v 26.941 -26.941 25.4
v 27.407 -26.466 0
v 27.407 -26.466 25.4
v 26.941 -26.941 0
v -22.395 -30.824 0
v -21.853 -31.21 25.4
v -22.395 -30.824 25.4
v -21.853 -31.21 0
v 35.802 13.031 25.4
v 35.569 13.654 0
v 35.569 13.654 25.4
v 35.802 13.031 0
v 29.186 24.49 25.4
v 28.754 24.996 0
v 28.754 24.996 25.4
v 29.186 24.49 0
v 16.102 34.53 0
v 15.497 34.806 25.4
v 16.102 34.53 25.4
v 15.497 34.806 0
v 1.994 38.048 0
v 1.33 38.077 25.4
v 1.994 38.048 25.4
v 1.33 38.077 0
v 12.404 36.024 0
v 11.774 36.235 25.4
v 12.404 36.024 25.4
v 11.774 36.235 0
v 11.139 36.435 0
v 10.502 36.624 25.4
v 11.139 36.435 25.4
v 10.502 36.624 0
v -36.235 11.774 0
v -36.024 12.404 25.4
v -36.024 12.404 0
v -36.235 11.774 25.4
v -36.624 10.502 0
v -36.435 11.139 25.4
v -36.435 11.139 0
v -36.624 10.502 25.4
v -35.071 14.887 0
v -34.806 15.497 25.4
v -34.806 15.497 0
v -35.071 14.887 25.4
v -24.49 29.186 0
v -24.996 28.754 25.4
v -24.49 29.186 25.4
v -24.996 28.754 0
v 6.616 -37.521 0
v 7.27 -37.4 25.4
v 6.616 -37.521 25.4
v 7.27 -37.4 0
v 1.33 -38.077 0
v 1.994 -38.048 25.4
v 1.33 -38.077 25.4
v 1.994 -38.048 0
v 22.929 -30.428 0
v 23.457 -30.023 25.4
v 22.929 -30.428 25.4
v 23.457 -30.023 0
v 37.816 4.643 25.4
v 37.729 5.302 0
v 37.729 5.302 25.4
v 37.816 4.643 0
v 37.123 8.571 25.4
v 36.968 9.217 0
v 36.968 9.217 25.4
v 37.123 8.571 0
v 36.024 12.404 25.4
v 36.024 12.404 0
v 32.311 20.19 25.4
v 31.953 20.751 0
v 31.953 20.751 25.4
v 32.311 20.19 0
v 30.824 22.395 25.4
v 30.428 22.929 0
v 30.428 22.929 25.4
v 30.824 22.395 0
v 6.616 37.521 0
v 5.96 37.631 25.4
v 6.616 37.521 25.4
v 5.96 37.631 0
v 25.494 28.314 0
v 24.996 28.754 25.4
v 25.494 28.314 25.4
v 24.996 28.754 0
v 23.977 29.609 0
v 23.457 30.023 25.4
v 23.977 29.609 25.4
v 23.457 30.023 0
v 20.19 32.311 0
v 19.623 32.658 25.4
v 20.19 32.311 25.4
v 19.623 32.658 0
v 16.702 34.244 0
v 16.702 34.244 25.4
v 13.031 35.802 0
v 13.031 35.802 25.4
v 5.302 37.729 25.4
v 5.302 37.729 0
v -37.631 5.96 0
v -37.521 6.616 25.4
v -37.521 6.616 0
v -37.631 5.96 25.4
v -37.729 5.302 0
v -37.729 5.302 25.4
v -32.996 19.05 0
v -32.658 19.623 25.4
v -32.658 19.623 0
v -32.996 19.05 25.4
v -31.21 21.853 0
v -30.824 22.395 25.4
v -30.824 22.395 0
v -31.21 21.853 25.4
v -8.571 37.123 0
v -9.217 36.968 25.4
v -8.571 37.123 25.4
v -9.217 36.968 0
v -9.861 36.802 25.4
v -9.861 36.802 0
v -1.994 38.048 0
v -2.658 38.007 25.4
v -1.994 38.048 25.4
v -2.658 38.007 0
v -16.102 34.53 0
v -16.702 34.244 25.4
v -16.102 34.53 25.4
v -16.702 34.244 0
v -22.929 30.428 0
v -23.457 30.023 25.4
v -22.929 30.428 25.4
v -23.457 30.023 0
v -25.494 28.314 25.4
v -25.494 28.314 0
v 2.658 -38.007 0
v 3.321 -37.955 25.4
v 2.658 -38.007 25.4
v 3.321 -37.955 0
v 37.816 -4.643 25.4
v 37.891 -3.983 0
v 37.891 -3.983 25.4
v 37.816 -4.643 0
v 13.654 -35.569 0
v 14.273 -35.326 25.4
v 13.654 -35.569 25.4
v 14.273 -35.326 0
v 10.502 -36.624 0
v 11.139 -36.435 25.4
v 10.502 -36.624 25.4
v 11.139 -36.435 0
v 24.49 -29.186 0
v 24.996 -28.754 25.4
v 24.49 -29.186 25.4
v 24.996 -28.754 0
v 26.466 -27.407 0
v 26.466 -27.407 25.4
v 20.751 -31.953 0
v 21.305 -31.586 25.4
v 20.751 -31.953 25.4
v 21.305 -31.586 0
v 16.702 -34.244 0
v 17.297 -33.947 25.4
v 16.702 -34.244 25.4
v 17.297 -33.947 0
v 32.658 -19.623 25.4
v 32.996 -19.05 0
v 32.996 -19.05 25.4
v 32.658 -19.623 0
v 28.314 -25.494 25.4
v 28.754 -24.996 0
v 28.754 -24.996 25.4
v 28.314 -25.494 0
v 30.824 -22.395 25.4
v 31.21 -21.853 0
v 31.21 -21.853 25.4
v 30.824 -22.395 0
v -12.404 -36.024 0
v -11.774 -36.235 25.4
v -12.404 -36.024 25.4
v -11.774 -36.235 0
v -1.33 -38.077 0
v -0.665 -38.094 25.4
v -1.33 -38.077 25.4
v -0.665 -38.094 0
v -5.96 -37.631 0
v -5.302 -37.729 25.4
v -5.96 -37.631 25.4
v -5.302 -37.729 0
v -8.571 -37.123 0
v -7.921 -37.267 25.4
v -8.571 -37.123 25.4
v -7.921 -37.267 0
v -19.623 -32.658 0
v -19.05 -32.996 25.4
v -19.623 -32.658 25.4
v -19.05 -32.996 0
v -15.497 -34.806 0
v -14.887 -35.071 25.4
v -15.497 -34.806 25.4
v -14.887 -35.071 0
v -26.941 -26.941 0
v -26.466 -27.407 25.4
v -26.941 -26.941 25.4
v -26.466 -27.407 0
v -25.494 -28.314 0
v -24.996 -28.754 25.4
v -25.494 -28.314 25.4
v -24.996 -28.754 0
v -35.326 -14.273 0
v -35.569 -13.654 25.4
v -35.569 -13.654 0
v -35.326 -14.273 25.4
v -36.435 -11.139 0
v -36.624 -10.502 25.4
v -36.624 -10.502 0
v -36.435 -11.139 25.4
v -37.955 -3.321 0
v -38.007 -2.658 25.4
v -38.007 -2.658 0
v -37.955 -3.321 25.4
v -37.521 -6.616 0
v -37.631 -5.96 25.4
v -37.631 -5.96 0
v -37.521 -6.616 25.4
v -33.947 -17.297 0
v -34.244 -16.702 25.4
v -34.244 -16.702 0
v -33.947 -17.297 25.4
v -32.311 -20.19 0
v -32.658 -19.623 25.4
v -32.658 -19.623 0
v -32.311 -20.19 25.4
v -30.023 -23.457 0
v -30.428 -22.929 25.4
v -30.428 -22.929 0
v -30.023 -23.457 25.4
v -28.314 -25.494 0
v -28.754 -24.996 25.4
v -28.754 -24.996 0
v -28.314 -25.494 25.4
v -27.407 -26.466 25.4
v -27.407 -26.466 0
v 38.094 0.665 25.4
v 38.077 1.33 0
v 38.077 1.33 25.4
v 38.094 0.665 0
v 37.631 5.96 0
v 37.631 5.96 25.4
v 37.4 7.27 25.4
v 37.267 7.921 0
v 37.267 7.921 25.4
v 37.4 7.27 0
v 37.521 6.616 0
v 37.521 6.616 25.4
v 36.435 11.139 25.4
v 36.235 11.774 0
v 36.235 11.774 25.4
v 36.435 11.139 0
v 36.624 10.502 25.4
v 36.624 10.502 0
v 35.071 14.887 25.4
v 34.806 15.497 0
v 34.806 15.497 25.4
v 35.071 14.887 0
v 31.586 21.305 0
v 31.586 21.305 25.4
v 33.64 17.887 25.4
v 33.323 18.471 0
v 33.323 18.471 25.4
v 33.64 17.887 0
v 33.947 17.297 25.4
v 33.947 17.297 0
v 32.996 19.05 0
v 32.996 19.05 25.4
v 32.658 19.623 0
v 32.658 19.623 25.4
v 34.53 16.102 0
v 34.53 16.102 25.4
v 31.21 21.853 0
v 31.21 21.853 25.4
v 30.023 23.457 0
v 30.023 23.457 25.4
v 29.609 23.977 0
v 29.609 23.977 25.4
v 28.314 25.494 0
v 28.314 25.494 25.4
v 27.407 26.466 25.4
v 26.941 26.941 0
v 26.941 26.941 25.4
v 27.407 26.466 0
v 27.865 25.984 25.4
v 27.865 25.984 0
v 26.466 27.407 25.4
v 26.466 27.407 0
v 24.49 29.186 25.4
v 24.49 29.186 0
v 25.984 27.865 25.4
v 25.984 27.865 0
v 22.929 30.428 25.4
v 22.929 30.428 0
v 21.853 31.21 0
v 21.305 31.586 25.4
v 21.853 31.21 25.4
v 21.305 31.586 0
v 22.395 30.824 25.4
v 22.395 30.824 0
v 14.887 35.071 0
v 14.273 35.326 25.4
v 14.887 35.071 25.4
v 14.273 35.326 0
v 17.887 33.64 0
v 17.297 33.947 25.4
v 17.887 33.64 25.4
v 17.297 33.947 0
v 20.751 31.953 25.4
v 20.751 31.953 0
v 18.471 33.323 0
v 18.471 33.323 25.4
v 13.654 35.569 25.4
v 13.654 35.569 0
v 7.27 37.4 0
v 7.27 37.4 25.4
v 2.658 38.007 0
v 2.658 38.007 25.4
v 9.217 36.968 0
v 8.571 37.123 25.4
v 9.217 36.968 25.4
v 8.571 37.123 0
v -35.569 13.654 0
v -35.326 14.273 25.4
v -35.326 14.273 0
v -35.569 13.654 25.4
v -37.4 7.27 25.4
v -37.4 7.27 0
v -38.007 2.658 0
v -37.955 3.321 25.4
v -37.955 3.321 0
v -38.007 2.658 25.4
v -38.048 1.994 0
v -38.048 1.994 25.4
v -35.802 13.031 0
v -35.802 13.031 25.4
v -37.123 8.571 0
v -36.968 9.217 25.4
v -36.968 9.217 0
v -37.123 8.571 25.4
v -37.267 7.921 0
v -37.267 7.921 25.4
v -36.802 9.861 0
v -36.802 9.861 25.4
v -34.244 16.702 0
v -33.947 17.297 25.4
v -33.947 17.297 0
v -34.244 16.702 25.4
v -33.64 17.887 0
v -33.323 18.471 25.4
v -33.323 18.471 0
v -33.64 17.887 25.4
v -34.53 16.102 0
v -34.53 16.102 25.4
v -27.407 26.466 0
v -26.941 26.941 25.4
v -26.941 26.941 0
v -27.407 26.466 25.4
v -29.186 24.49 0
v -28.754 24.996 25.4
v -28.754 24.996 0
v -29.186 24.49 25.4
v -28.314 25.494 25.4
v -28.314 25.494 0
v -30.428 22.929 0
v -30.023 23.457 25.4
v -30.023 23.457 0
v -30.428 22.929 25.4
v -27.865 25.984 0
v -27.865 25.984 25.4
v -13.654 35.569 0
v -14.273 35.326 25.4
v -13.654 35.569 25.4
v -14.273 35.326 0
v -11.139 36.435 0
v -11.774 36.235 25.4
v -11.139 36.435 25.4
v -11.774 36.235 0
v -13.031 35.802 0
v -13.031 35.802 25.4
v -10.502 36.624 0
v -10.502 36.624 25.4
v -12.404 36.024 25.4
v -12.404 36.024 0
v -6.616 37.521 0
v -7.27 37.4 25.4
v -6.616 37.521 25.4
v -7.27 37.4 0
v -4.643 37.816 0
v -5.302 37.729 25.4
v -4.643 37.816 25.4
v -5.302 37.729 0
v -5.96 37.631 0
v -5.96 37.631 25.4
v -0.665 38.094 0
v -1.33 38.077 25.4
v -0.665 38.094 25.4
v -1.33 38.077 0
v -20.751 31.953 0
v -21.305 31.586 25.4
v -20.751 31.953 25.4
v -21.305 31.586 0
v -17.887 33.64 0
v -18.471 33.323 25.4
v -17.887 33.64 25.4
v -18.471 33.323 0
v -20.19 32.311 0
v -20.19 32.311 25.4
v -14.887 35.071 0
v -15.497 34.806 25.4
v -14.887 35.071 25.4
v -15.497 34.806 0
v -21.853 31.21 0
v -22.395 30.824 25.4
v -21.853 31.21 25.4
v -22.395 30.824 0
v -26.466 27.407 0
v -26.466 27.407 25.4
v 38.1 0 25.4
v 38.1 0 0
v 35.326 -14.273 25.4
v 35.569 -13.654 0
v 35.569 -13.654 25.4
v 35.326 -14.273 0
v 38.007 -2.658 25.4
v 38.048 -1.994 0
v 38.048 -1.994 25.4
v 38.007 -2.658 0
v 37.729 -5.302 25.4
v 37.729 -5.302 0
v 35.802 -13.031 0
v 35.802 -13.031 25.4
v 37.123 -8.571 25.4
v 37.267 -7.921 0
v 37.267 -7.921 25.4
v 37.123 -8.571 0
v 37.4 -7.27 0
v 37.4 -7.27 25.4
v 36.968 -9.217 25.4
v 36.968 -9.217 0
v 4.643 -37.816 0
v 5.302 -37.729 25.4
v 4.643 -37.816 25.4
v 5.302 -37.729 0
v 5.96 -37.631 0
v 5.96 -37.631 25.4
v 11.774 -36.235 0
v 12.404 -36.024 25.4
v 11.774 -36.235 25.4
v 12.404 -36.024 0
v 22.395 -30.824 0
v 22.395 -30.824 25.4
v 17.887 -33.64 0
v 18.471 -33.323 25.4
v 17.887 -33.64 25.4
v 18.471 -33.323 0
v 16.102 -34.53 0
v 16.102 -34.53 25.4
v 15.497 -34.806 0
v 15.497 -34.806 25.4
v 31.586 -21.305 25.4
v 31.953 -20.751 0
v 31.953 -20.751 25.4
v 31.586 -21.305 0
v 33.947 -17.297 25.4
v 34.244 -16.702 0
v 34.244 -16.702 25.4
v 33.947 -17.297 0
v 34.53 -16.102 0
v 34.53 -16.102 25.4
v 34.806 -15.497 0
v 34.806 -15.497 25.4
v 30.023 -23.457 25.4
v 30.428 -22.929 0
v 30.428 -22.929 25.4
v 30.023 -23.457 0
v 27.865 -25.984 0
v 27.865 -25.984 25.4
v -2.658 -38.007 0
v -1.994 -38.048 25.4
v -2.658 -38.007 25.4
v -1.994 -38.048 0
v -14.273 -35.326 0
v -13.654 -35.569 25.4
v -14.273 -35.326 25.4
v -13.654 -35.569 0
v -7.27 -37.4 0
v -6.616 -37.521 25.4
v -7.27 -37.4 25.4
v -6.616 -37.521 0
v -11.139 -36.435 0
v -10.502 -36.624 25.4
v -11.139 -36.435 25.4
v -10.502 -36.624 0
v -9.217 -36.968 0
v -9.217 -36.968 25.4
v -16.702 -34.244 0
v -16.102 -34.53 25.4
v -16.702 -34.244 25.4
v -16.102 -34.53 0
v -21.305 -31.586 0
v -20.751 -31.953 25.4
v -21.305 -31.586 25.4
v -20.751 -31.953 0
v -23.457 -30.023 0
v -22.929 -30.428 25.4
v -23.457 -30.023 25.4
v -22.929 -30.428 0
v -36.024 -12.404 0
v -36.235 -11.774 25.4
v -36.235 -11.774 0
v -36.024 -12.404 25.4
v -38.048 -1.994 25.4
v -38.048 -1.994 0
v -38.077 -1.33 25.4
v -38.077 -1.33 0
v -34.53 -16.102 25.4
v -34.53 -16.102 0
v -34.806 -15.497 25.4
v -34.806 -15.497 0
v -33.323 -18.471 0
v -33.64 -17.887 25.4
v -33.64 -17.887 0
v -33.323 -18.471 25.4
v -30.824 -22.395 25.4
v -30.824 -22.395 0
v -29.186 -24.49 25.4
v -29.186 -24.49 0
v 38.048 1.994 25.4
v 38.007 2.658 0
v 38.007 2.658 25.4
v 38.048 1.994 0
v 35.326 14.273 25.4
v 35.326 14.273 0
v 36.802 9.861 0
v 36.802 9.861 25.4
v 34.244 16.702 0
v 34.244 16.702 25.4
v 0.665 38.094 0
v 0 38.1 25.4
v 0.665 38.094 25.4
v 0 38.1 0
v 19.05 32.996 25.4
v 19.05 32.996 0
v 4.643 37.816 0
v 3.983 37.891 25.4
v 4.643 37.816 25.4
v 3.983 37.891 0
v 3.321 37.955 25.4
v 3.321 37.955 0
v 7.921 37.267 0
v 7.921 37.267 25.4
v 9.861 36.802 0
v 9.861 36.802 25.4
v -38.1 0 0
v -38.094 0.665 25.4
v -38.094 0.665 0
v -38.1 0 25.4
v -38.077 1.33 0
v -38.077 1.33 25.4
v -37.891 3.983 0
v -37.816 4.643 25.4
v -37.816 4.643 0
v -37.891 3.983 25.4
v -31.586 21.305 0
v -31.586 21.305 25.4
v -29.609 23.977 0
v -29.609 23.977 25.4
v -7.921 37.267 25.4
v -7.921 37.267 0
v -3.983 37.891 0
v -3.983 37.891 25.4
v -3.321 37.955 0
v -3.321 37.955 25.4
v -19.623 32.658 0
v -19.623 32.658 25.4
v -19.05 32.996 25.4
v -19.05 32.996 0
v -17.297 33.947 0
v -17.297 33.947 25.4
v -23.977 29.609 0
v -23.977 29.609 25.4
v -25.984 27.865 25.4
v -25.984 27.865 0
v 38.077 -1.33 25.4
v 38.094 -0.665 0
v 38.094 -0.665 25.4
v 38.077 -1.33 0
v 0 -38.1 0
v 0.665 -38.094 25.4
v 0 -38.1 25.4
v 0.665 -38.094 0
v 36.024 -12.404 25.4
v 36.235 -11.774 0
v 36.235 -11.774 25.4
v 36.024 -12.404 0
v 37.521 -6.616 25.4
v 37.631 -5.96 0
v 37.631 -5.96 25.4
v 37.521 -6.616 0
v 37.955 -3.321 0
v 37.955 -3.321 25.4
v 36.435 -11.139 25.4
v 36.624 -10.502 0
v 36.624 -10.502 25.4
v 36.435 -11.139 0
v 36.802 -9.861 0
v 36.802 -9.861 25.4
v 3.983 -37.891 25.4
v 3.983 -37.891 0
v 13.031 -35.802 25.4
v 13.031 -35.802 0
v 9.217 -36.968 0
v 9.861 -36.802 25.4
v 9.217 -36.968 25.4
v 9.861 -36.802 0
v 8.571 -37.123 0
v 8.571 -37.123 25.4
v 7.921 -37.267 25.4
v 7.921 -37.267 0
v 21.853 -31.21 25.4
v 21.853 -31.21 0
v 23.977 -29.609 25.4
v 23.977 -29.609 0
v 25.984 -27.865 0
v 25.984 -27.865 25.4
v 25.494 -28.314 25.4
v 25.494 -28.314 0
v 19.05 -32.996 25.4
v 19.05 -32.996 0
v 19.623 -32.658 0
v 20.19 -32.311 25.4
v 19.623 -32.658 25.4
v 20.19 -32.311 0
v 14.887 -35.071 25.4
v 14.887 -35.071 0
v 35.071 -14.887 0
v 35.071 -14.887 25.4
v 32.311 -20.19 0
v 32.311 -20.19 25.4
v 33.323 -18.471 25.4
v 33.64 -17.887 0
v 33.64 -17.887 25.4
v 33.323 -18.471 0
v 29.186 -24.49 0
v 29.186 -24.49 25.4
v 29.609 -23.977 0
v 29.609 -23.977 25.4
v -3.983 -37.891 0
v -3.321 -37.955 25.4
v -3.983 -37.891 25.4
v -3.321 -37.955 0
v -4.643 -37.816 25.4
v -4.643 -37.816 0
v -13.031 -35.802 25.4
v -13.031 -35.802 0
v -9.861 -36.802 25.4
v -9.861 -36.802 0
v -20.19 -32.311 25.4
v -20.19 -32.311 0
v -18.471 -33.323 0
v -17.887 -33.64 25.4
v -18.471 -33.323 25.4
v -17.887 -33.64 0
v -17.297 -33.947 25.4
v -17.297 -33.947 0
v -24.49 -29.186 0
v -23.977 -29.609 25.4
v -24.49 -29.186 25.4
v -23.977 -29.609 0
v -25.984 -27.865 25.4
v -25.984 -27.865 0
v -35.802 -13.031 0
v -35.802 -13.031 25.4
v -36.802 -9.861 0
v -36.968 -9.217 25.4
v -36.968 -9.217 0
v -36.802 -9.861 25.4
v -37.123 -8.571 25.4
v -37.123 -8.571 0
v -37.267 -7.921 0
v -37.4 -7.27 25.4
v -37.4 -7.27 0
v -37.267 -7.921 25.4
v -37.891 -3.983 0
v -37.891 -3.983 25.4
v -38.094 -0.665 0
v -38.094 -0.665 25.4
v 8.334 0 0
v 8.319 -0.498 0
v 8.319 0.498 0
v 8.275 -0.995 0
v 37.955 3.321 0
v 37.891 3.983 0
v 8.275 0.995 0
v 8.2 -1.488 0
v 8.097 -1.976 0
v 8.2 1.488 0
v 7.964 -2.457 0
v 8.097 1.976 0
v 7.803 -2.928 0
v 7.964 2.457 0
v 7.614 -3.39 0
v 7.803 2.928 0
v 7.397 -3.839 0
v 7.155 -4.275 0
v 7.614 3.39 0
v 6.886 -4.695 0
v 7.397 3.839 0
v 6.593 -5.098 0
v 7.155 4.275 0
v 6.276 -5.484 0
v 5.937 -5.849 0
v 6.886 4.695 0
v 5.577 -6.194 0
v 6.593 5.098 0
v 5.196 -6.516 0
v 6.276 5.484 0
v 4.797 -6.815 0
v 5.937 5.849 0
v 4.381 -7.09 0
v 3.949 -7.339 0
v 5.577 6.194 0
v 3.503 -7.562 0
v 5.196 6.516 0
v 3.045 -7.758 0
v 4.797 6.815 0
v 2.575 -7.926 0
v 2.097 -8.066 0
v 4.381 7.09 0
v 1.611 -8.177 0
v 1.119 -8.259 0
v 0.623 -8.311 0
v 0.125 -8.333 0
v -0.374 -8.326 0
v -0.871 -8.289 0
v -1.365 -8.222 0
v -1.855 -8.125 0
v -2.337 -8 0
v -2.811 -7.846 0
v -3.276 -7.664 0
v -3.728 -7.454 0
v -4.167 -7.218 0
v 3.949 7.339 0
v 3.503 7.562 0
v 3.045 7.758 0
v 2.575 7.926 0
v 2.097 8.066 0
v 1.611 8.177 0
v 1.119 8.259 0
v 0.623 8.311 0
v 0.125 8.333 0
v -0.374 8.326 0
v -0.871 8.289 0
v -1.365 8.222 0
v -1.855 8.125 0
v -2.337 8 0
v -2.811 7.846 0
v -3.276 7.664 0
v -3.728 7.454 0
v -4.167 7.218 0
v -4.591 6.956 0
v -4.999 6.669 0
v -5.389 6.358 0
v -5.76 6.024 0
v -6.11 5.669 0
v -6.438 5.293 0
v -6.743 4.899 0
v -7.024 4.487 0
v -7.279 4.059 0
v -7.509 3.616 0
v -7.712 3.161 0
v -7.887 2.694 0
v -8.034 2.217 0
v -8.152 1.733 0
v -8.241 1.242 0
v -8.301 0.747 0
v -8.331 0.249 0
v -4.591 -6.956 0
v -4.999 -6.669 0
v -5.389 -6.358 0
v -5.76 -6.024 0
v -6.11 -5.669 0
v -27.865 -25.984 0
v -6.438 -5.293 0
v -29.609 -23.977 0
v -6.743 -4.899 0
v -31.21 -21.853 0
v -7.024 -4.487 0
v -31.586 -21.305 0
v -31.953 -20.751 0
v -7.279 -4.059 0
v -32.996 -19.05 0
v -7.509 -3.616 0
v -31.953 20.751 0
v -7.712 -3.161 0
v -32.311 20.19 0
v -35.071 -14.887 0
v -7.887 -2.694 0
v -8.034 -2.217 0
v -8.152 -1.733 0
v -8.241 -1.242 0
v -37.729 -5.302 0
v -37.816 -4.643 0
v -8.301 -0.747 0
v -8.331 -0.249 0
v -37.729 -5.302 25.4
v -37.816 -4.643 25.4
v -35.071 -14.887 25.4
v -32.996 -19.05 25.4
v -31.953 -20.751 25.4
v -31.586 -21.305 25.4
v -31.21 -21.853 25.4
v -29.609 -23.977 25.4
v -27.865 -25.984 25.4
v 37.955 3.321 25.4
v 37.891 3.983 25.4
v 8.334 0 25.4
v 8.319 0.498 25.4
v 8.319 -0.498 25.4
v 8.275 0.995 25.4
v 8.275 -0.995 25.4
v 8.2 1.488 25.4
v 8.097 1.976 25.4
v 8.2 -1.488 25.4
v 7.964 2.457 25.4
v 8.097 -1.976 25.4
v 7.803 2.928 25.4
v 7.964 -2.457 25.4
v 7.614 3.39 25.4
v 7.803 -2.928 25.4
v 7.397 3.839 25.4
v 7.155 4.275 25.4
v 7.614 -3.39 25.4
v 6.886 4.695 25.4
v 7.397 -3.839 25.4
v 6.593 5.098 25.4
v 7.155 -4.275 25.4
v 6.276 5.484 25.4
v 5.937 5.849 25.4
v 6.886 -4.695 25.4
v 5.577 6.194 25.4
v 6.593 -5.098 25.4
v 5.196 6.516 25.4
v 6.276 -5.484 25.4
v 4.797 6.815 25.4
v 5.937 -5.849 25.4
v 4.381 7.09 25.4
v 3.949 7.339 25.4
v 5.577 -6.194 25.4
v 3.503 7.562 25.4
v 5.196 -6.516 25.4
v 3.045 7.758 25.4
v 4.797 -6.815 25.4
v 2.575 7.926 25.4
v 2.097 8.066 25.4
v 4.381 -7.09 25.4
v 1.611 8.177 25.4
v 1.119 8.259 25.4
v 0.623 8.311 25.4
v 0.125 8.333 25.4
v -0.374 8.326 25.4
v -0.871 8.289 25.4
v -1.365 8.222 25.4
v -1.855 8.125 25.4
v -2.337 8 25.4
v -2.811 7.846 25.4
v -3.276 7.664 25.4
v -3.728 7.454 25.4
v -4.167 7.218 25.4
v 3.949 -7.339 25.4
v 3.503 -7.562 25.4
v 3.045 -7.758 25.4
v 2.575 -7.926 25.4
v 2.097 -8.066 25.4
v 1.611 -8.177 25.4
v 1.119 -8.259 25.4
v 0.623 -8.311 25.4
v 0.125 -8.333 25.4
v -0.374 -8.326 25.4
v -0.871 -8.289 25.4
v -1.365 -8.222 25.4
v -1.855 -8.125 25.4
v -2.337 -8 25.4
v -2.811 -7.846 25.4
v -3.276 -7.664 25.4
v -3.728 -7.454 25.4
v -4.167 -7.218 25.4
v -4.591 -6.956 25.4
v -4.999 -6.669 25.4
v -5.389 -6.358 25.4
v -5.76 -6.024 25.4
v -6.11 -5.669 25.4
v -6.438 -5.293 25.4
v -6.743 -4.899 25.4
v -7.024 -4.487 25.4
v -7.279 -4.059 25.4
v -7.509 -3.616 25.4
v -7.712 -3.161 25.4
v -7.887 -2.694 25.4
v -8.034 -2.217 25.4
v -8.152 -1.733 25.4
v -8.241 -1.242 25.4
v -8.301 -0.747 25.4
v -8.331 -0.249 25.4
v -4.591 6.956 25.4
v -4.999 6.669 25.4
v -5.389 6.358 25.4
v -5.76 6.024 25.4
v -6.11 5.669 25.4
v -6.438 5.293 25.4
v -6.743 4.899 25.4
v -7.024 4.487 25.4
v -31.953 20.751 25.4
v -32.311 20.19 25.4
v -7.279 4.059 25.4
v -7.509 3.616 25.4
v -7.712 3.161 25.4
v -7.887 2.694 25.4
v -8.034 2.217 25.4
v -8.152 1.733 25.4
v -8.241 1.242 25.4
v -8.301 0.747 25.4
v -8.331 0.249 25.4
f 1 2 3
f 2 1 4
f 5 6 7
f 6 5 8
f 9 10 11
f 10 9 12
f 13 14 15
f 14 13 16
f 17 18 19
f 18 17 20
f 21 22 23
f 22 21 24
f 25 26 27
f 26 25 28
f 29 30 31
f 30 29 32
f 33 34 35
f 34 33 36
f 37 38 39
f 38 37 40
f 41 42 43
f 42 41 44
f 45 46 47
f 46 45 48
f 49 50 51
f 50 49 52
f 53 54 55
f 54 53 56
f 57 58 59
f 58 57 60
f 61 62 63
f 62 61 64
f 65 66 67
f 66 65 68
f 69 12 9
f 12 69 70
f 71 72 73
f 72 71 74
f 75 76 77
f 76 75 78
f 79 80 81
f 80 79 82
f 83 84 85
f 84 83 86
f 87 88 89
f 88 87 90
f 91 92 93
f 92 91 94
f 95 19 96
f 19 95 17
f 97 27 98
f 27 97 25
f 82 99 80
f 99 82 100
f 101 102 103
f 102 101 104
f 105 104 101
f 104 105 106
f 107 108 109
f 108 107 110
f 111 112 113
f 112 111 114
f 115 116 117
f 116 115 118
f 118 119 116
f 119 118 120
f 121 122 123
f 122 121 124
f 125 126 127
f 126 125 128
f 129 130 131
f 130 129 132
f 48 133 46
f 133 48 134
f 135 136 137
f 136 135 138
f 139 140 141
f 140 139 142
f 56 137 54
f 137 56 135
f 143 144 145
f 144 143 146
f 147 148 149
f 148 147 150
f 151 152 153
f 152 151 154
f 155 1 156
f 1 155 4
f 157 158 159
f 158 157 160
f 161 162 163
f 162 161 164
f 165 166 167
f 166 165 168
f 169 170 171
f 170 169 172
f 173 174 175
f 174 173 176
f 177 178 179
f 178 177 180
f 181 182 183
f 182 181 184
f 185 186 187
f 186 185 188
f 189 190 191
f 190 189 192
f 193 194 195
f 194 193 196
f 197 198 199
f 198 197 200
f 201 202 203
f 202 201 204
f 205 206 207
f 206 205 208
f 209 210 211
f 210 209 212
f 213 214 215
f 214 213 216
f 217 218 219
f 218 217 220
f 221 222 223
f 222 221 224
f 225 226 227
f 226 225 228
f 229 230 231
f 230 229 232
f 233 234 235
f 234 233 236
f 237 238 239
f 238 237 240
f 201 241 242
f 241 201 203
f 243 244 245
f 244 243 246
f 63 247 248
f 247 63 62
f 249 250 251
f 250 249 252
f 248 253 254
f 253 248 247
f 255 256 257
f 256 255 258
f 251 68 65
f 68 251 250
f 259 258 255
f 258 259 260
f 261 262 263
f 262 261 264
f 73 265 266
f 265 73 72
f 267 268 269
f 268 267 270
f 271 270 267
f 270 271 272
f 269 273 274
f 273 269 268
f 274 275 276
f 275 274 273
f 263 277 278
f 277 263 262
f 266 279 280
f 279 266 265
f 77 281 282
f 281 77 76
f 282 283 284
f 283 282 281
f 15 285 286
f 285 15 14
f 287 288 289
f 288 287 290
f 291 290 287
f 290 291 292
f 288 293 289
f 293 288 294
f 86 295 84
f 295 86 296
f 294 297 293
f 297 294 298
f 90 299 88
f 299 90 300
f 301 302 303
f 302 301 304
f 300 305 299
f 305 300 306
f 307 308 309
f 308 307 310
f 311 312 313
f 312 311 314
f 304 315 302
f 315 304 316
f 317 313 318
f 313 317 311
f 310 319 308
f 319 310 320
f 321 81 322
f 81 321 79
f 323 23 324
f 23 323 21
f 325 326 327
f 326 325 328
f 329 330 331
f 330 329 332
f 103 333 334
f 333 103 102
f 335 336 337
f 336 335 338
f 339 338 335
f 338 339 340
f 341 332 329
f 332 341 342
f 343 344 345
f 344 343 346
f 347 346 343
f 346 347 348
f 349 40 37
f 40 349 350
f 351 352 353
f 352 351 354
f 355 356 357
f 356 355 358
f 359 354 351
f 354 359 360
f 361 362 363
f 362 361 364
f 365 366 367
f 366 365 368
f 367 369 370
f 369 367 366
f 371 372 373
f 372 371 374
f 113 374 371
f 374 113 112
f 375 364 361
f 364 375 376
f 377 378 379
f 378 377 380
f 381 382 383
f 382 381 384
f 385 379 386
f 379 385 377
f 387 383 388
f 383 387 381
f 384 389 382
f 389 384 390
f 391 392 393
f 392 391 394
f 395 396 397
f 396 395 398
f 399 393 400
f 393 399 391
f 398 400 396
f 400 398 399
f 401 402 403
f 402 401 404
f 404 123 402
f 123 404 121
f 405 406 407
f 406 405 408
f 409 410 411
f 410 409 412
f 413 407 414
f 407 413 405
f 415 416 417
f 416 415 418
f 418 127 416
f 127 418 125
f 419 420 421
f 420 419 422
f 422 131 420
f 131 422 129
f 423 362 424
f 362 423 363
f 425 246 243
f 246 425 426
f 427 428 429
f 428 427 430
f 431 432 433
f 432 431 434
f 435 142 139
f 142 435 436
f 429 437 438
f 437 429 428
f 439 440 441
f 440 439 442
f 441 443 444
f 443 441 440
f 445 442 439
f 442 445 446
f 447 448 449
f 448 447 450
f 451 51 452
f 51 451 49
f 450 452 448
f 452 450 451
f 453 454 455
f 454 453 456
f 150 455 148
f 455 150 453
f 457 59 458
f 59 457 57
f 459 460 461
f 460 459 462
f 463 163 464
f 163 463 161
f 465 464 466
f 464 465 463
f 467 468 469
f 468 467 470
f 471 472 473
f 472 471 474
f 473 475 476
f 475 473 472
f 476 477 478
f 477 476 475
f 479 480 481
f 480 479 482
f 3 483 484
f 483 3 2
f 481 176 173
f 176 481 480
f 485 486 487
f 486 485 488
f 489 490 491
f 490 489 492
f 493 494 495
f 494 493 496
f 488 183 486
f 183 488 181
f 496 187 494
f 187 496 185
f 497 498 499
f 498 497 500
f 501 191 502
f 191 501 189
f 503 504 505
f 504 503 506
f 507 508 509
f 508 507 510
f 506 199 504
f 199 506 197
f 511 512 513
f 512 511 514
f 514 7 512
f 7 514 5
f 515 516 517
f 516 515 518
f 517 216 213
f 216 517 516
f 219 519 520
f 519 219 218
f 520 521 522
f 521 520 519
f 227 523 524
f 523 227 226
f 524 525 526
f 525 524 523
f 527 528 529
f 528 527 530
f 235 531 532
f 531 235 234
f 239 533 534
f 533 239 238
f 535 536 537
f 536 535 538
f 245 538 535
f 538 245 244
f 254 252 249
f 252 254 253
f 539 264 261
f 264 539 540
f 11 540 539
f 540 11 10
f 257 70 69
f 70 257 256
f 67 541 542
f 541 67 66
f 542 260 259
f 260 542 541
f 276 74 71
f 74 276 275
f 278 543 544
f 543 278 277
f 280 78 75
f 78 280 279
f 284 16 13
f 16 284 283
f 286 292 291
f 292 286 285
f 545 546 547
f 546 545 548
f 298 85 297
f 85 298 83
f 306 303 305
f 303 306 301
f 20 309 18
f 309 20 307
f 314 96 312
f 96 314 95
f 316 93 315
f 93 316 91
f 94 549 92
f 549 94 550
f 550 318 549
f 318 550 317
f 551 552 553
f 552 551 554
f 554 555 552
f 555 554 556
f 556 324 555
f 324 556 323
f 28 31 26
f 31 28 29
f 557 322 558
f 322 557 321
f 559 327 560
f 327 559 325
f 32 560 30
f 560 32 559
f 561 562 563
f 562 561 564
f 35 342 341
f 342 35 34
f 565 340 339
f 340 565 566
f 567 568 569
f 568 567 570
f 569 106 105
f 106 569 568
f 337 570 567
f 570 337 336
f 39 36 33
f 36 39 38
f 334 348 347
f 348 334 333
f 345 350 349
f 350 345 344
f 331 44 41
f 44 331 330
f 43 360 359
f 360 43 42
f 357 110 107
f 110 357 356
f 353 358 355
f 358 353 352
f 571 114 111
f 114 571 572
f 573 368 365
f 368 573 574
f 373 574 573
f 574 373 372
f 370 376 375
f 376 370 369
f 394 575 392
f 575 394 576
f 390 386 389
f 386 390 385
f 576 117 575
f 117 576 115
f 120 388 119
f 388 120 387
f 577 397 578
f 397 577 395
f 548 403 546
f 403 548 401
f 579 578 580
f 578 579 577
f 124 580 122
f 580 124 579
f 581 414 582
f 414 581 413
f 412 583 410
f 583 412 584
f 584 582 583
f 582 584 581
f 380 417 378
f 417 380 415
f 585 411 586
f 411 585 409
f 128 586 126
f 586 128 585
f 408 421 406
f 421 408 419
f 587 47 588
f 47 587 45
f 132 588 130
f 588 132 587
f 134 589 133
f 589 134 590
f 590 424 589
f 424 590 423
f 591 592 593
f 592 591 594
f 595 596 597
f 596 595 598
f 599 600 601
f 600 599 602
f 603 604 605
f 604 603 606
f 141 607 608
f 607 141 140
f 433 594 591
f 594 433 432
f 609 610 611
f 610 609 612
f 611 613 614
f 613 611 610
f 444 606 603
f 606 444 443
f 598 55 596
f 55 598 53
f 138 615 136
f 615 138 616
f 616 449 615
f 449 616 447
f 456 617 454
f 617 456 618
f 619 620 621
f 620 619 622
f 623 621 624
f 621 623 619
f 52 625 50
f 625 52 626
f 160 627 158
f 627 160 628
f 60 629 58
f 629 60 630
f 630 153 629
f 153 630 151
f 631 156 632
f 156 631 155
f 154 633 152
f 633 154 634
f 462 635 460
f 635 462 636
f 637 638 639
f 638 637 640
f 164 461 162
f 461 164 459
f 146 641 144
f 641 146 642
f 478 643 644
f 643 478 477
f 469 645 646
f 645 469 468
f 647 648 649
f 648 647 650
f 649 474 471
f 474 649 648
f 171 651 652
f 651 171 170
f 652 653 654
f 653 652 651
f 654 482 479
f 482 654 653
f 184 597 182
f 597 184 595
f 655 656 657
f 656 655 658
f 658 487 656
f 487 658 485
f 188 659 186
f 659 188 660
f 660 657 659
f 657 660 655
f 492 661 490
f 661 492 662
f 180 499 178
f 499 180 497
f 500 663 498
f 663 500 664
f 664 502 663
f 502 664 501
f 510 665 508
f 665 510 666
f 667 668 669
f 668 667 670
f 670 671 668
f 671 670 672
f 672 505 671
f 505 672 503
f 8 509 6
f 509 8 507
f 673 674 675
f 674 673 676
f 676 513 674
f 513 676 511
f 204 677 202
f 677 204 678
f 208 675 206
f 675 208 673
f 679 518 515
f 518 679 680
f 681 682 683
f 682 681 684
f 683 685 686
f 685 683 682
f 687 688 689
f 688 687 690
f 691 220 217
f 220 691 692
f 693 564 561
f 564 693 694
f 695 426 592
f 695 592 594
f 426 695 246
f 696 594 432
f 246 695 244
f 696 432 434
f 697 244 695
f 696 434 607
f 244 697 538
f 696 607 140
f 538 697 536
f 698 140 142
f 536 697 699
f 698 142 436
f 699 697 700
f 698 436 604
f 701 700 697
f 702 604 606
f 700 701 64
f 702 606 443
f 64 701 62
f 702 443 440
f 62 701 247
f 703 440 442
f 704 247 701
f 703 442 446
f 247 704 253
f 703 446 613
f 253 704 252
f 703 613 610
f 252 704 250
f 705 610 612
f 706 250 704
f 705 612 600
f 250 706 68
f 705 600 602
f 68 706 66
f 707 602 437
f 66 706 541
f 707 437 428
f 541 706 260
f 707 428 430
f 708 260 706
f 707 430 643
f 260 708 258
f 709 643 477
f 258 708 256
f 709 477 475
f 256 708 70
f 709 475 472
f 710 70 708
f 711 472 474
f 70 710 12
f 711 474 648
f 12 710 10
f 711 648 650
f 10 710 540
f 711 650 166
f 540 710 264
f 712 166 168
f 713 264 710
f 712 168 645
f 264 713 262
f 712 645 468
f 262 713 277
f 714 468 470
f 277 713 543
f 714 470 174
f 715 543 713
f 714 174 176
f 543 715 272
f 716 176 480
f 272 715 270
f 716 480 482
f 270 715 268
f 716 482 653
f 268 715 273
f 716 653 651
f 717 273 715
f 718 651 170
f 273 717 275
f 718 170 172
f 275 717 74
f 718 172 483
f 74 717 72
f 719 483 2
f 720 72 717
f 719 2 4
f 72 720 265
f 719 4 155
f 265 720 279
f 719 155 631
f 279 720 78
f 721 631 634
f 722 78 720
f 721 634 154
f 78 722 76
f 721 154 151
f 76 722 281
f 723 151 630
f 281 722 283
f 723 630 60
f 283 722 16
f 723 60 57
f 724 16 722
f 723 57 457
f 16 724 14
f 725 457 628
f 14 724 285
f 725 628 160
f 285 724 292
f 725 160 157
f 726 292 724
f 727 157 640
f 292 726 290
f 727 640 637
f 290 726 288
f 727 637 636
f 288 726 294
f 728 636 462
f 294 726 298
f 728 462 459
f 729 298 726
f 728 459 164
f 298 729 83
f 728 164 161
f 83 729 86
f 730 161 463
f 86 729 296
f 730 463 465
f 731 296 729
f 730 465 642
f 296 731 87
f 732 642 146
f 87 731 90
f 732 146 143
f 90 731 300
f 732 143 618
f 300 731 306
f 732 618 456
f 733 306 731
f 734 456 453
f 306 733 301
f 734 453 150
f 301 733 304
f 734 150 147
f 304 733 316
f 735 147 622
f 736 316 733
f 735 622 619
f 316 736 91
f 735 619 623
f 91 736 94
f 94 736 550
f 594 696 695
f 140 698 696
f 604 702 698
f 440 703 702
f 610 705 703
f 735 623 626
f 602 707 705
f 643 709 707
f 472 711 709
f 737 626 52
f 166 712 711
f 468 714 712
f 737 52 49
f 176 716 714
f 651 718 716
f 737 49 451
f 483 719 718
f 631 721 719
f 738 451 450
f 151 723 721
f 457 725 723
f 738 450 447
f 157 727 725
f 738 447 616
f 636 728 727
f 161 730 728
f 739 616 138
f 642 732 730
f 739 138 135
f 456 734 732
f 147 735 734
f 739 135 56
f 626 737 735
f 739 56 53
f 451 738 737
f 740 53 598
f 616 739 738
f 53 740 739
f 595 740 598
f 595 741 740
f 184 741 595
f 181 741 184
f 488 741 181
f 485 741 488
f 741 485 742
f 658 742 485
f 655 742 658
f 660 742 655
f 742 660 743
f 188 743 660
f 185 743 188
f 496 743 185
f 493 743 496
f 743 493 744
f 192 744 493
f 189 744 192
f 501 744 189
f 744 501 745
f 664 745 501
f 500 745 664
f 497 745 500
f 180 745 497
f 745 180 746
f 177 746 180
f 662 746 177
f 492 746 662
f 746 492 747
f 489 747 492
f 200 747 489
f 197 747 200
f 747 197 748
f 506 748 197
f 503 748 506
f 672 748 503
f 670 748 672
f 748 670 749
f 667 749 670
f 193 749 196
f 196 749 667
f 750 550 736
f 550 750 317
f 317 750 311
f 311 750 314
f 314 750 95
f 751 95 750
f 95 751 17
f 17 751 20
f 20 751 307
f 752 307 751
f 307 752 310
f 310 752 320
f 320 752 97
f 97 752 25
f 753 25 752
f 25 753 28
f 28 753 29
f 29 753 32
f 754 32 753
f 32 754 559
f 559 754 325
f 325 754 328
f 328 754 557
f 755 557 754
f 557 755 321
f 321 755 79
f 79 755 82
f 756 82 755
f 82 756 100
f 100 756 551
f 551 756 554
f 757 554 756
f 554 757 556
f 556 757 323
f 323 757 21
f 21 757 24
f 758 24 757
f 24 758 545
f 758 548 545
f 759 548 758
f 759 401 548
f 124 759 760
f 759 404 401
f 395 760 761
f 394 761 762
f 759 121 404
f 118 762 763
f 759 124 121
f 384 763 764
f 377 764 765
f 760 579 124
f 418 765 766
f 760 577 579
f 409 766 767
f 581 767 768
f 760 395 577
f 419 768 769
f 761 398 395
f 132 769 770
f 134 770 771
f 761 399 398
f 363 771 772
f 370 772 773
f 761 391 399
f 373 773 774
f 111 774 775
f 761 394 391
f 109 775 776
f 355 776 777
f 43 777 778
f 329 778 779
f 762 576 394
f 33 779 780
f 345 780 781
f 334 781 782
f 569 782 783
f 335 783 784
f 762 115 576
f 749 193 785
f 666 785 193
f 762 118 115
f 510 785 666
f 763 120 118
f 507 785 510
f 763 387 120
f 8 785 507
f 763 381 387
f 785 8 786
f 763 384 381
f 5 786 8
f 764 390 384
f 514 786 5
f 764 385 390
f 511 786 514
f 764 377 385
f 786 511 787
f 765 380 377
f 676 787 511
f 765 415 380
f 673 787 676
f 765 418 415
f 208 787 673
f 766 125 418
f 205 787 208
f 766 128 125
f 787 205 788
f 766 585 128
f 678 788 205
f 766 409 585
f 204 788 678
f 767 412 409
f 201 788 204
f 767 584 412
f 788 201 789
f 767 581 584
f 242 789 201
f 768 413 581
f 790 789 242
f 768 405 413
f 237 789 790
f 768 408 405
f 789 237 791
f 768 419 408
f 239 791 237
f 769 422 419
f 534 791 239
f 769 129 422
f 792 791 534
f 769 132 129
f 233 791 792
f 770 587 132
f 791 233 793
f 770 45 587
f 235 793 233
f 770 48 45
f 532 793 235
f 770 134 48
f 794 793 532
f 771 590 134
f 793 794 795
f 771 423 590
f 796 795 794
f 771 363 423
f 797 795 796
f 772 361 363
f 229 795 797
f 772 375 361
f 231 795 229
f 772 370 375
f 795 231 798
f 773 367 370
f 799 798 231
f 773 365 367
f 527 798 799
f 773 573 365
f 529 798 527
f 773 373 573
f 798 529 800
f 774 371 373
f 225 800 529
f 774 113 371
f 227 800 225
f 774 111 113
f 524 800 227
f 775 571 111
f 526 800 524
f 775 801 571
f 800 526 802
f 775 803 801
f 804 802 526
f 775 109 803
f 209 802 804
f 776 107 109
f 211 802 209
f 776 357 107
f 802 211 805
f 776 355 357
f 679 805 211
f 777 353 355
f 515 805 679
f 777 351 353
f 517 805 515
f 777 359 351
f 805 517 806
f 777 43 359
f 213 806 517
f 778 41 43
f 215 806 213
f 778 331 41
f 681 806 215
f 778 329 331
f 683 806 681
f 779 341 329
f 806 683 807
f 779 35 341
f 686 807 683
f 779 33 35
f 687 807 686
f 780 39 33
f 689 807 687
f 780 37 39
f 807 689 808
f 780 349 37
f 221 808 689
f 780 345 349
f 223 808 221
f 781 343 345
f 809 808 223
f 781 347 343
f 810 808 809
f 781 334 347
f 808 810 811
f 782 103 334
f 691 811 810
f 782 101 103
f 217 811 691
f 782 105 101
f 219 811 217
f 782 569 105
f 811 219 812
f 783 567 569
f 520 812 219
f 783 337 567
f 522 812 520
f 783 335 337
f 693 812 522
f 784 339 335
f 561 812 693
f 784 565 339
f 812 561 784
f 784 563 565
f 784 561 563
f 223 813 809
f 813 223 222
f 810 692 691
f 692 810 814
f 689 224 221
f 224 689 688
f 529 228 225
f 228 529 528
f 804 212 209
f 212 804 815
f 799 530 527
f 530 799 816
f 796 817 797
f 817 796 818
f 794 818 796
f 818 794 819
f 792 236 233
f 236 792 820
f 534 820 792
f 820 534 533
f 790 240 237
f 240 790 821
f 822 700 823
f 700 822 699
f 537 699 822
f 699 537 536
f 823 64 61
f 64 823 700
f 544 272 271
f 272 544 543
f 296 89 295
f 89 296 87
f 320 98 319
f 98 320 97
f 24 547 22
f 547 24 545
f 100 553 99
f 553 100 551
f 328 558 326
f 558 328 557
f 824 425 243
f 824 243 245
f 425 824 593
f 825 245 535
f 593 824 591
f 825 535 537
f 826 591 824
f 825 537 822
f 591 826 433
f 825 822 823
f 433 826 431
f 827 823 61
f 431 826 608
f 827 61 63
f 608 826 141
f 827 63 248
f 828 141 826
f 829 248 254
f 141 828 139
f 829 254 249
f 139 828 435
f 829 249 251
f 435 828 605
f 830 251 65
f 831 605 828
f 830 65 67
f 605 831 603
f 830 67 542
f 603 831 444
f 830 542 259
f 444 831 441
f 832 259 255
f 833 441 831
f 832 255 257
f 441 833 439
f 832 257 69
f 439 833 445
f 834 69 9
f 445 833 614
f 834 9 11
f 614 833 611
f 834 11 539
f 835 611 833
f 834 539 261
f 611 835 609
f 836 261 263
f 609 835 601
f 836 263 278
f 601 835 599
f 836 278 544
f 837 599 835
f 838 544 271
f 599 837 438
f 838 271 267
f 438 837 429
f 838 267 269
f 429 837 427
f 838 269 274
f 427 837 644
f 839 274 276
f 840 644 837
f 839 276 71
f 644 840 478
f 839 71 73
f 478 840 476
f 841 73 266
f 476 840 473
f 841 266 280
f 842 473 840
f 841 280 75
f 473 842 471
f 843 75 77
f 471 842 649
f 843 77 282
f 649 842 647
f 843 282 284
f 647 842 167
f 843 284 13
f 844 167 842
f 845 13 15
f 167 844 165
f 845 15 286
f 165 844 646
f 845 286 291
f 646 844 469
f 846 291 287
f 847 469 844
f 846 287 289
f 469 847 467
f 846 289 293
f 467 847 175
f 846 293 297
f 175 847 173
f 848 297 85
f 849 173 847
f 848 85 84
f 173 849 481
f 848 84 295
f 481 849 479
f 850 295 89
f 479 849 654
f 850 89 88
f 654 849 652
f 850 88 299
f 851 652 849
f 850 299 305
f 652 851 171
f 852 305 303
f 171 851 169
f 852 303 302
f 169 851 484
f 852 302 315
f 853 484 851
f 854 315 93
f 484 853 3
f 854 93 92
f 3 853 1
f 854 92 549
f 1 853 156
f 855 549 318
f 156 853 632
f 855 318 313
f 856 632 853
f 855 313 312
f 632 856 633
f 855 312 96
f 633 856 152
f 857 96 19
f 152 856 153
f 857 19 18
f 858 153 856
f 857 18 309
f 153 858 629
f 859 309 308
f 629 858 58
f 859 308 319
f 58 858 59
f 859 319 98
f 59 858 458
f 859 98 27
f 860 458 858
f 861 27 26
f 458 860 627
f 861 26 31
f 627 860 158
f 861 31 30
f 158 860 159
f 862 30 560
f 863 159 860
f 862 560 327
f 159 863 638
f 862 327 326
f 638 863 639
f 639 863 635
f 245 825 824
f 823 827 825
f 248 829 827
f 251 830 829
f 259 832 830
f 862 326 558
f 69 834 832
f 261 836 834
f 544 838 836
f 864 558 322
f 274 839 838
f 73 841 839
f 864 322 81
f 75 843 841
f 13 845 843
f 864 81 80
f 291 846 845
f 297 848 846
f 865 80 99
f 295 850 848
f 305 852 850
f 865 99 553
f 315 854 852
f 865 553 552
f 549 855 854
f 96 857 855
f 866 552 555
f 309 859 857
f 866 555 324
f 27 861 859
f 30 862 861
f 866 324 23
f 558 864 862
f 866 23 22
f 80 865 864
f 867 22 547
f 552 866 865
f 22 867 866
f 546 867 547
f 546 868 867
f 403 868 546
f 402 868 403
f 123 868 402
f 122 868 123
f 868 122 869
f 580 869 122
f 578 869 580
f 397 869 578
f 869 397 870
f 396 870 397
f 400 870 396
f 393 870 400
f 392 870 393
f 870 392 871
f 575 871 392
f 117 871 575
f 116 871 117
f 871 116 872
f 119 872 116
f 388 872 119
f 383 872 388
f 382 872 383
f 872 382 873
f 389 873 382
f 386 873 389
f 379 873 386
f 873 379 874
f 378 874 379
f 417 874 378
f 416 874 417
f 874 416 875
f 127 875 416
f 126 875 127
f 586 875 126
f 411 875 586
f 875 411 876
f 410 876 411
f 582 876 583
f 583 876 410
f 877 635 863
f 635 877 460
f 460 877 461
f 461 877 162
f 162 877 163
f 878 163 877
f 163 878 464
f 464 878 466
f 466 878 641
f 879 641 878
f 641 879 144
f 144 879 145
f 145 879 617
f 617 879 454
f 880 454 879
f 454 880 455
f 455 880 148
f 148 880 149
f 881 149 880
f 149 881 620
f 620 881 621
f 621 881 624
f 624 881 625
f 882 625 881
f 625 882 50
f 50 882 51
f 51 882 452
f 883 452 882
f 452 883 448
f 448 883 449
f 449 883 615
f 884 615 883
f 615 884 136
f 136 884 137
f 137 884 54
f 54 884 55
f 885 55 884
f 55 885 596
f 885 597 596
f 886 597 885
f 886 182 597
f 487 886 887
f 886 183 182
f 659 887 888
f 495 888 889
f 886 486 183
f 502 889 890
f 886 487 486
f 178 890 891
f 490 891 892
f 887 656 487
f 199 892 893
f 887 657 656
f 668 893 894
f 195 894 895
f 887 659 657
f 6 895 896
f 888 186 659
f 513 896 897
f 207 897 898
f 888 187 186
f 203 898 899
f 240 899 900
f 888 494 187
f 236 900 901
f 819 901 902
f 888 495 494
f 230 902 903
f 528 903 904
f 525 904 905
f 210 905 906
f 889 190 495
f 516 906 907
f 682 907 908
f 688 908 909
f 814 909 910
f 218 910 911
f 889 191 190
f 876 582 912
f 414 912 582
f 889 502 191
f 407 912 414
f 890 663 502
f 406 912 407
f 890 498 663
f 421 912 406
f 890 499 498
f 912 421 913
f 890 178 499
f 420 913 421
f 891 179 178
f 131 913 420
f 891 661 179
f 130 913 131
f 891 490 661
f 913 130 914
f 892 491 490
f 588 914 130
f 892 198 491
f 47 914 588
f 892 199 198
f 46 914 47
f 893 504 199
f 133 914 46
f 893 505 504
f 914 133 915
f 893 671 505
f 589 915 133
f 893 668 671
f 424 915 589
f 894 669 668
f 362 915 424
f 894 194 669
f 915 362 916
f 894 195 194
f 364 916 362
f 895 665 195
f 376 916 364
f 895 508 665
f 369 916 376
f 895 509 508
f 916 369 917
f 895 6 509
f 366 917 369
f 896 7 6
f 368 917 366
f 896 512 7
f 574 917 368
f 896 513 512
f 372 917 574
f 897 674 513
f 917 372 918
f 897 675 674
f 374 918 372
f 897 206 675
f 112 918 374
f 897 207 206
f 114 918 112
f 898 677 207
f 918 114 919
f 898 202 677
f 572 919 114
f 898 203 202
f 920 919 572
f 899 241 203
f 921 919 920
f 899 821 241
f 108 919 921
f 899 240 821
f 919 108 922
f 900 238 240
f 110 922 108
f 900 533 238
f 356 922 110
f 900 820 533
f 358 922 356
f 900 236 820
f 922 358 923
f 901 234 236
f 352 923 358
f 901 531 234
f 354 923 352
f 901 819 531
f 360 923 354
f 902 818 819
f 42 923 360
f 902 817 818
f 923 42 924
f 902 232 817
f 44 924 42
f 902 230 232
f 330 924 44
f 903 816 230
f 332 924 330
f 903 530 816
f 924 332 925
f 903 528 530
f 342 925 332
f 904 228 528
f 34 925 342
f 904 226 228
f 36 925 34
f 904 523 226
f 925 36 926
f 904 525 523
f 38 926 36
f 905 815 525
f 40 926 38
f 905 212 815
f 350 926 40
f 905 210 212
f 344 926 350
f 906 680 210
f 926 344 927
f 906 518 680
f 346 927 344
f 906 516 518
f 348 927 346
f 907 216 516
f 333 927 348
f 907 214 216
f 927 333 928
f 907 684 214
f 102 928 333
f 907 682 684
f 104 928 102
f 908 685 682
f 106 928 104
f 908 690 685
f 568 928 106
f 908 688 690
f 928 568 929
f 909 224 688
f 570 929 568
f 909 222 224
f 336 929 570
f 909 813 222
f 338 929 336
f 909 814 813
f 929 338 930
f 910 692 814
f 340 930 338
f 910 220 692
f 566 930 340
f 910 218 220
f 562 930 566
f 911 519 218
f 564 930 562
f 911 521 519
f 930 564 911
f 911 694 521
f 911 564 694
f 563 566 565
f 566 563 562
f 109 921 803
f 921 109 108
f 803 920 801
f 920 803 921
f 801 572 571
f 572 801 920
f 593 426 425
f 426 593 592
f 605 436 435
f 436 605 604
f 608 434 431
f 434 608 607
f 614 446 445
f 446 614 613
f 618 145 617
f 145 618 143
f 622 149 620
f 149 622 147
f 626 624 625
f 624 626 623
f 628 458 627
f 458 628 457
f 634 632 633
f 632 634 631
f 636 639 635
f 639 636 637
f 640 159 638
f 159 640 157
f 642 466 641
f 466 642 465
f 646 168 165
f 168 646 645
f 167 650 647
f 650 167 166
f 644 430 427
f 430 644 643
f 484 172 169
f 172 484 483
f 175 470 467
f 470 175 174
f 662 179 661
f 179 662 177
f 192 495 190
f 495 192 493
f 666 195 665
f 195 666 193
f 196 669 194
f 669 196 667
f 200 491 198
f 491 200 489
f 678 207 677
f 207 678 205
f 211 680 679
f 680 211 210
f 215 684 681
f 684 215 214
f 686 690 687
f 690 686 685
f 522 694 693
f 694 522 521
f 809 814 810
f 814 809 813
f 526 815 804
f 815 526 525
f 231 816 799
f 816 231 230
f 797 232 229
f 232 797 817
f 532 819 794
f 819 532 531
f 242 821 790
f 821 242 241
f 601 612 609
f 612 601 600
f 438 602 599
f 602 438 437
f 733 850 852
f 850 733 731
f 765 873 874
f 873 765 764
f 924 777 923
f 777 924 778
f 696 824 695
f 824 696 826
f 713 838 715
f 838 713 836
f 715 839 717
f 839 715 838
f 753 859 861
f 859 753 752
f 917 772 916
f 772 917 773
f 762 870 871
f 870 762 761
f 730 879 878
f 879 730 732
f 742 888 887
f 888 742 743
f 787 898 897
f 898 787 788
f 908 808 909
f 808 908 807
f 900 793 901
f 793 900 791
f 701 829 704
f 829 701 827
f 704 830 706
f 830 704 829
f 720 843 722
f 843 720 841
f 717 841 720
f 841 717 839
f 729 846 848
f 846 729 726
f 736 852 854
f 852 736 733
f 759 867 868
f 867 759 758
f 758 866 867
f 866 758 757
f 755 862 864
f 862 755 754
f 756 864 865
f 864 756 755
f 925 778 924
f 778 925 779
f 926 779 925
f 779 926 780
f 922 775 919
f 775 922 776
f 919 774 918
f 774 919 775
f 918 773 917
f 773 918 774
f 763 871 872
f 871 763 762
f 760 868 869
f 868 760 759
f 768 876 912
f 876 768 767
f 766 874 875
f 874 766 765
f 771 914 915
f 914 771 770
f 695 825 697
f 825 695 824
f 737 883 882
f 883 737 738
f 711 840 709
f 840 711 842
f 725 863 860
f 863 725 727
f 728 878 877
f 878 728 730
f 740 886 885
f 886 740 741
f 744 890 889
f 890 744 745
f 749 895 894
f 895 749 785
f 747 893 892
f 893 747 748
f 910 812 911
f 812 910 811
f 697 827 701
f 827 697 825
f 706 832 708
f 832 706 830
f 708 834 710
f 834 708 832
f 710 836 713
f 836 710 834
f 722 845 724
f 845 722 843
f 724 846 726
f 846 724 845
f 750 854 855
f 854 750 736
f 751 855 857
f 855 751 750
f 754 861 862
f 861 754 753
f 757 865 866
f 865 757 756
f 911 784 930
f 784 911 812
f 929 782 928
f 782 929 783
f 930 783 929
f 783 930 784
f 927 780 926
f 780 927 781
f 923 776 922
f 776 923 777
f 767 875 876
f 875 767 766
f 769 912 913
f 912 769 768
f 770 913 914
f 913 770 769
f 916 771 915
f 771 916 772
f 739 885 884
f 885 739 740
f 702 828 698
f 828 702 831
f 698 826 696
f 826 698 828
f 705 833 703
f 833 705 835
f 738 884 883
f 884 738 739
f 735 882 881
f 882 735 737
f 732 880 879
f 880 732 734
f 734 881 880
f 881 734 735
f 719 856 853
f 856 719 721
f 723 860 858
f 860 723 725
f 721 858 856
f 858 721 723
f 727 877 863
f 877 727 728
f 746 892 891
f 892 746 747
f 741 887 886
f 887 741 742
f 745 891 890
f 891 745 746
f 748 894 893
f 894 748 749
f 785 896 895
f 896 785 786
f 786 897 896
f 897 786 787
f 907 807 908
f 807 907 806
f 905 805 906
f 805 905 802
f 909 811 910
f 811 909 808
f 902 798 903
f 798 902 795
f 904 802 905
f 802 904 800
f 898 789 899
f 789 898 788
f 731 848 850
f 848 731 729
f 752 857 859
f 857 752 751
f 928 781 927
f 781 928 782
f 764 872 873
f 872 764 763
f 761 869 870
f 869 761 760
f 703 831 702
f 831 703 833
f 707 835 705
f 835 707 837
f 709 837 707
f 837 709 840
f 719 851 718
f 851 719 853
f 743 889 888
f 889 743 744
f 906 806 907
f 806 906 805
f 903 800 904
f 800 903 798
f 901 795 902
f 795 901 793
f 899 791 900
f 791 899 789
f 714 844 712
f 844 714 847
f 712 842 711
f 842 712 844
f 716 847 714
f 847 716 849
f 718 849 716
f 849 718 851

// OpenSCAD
function in_to_mm(in) = in * 25.4;
$fa = 1;
$fs = 0.5;

od = in_to_mm(3);
id = in_to_mm(21/32);
thickness = in_to_mm(1);

difference(){
	cylinder(h = thickness, d = od);
	cylinder(h = thickness, d = id);
}
